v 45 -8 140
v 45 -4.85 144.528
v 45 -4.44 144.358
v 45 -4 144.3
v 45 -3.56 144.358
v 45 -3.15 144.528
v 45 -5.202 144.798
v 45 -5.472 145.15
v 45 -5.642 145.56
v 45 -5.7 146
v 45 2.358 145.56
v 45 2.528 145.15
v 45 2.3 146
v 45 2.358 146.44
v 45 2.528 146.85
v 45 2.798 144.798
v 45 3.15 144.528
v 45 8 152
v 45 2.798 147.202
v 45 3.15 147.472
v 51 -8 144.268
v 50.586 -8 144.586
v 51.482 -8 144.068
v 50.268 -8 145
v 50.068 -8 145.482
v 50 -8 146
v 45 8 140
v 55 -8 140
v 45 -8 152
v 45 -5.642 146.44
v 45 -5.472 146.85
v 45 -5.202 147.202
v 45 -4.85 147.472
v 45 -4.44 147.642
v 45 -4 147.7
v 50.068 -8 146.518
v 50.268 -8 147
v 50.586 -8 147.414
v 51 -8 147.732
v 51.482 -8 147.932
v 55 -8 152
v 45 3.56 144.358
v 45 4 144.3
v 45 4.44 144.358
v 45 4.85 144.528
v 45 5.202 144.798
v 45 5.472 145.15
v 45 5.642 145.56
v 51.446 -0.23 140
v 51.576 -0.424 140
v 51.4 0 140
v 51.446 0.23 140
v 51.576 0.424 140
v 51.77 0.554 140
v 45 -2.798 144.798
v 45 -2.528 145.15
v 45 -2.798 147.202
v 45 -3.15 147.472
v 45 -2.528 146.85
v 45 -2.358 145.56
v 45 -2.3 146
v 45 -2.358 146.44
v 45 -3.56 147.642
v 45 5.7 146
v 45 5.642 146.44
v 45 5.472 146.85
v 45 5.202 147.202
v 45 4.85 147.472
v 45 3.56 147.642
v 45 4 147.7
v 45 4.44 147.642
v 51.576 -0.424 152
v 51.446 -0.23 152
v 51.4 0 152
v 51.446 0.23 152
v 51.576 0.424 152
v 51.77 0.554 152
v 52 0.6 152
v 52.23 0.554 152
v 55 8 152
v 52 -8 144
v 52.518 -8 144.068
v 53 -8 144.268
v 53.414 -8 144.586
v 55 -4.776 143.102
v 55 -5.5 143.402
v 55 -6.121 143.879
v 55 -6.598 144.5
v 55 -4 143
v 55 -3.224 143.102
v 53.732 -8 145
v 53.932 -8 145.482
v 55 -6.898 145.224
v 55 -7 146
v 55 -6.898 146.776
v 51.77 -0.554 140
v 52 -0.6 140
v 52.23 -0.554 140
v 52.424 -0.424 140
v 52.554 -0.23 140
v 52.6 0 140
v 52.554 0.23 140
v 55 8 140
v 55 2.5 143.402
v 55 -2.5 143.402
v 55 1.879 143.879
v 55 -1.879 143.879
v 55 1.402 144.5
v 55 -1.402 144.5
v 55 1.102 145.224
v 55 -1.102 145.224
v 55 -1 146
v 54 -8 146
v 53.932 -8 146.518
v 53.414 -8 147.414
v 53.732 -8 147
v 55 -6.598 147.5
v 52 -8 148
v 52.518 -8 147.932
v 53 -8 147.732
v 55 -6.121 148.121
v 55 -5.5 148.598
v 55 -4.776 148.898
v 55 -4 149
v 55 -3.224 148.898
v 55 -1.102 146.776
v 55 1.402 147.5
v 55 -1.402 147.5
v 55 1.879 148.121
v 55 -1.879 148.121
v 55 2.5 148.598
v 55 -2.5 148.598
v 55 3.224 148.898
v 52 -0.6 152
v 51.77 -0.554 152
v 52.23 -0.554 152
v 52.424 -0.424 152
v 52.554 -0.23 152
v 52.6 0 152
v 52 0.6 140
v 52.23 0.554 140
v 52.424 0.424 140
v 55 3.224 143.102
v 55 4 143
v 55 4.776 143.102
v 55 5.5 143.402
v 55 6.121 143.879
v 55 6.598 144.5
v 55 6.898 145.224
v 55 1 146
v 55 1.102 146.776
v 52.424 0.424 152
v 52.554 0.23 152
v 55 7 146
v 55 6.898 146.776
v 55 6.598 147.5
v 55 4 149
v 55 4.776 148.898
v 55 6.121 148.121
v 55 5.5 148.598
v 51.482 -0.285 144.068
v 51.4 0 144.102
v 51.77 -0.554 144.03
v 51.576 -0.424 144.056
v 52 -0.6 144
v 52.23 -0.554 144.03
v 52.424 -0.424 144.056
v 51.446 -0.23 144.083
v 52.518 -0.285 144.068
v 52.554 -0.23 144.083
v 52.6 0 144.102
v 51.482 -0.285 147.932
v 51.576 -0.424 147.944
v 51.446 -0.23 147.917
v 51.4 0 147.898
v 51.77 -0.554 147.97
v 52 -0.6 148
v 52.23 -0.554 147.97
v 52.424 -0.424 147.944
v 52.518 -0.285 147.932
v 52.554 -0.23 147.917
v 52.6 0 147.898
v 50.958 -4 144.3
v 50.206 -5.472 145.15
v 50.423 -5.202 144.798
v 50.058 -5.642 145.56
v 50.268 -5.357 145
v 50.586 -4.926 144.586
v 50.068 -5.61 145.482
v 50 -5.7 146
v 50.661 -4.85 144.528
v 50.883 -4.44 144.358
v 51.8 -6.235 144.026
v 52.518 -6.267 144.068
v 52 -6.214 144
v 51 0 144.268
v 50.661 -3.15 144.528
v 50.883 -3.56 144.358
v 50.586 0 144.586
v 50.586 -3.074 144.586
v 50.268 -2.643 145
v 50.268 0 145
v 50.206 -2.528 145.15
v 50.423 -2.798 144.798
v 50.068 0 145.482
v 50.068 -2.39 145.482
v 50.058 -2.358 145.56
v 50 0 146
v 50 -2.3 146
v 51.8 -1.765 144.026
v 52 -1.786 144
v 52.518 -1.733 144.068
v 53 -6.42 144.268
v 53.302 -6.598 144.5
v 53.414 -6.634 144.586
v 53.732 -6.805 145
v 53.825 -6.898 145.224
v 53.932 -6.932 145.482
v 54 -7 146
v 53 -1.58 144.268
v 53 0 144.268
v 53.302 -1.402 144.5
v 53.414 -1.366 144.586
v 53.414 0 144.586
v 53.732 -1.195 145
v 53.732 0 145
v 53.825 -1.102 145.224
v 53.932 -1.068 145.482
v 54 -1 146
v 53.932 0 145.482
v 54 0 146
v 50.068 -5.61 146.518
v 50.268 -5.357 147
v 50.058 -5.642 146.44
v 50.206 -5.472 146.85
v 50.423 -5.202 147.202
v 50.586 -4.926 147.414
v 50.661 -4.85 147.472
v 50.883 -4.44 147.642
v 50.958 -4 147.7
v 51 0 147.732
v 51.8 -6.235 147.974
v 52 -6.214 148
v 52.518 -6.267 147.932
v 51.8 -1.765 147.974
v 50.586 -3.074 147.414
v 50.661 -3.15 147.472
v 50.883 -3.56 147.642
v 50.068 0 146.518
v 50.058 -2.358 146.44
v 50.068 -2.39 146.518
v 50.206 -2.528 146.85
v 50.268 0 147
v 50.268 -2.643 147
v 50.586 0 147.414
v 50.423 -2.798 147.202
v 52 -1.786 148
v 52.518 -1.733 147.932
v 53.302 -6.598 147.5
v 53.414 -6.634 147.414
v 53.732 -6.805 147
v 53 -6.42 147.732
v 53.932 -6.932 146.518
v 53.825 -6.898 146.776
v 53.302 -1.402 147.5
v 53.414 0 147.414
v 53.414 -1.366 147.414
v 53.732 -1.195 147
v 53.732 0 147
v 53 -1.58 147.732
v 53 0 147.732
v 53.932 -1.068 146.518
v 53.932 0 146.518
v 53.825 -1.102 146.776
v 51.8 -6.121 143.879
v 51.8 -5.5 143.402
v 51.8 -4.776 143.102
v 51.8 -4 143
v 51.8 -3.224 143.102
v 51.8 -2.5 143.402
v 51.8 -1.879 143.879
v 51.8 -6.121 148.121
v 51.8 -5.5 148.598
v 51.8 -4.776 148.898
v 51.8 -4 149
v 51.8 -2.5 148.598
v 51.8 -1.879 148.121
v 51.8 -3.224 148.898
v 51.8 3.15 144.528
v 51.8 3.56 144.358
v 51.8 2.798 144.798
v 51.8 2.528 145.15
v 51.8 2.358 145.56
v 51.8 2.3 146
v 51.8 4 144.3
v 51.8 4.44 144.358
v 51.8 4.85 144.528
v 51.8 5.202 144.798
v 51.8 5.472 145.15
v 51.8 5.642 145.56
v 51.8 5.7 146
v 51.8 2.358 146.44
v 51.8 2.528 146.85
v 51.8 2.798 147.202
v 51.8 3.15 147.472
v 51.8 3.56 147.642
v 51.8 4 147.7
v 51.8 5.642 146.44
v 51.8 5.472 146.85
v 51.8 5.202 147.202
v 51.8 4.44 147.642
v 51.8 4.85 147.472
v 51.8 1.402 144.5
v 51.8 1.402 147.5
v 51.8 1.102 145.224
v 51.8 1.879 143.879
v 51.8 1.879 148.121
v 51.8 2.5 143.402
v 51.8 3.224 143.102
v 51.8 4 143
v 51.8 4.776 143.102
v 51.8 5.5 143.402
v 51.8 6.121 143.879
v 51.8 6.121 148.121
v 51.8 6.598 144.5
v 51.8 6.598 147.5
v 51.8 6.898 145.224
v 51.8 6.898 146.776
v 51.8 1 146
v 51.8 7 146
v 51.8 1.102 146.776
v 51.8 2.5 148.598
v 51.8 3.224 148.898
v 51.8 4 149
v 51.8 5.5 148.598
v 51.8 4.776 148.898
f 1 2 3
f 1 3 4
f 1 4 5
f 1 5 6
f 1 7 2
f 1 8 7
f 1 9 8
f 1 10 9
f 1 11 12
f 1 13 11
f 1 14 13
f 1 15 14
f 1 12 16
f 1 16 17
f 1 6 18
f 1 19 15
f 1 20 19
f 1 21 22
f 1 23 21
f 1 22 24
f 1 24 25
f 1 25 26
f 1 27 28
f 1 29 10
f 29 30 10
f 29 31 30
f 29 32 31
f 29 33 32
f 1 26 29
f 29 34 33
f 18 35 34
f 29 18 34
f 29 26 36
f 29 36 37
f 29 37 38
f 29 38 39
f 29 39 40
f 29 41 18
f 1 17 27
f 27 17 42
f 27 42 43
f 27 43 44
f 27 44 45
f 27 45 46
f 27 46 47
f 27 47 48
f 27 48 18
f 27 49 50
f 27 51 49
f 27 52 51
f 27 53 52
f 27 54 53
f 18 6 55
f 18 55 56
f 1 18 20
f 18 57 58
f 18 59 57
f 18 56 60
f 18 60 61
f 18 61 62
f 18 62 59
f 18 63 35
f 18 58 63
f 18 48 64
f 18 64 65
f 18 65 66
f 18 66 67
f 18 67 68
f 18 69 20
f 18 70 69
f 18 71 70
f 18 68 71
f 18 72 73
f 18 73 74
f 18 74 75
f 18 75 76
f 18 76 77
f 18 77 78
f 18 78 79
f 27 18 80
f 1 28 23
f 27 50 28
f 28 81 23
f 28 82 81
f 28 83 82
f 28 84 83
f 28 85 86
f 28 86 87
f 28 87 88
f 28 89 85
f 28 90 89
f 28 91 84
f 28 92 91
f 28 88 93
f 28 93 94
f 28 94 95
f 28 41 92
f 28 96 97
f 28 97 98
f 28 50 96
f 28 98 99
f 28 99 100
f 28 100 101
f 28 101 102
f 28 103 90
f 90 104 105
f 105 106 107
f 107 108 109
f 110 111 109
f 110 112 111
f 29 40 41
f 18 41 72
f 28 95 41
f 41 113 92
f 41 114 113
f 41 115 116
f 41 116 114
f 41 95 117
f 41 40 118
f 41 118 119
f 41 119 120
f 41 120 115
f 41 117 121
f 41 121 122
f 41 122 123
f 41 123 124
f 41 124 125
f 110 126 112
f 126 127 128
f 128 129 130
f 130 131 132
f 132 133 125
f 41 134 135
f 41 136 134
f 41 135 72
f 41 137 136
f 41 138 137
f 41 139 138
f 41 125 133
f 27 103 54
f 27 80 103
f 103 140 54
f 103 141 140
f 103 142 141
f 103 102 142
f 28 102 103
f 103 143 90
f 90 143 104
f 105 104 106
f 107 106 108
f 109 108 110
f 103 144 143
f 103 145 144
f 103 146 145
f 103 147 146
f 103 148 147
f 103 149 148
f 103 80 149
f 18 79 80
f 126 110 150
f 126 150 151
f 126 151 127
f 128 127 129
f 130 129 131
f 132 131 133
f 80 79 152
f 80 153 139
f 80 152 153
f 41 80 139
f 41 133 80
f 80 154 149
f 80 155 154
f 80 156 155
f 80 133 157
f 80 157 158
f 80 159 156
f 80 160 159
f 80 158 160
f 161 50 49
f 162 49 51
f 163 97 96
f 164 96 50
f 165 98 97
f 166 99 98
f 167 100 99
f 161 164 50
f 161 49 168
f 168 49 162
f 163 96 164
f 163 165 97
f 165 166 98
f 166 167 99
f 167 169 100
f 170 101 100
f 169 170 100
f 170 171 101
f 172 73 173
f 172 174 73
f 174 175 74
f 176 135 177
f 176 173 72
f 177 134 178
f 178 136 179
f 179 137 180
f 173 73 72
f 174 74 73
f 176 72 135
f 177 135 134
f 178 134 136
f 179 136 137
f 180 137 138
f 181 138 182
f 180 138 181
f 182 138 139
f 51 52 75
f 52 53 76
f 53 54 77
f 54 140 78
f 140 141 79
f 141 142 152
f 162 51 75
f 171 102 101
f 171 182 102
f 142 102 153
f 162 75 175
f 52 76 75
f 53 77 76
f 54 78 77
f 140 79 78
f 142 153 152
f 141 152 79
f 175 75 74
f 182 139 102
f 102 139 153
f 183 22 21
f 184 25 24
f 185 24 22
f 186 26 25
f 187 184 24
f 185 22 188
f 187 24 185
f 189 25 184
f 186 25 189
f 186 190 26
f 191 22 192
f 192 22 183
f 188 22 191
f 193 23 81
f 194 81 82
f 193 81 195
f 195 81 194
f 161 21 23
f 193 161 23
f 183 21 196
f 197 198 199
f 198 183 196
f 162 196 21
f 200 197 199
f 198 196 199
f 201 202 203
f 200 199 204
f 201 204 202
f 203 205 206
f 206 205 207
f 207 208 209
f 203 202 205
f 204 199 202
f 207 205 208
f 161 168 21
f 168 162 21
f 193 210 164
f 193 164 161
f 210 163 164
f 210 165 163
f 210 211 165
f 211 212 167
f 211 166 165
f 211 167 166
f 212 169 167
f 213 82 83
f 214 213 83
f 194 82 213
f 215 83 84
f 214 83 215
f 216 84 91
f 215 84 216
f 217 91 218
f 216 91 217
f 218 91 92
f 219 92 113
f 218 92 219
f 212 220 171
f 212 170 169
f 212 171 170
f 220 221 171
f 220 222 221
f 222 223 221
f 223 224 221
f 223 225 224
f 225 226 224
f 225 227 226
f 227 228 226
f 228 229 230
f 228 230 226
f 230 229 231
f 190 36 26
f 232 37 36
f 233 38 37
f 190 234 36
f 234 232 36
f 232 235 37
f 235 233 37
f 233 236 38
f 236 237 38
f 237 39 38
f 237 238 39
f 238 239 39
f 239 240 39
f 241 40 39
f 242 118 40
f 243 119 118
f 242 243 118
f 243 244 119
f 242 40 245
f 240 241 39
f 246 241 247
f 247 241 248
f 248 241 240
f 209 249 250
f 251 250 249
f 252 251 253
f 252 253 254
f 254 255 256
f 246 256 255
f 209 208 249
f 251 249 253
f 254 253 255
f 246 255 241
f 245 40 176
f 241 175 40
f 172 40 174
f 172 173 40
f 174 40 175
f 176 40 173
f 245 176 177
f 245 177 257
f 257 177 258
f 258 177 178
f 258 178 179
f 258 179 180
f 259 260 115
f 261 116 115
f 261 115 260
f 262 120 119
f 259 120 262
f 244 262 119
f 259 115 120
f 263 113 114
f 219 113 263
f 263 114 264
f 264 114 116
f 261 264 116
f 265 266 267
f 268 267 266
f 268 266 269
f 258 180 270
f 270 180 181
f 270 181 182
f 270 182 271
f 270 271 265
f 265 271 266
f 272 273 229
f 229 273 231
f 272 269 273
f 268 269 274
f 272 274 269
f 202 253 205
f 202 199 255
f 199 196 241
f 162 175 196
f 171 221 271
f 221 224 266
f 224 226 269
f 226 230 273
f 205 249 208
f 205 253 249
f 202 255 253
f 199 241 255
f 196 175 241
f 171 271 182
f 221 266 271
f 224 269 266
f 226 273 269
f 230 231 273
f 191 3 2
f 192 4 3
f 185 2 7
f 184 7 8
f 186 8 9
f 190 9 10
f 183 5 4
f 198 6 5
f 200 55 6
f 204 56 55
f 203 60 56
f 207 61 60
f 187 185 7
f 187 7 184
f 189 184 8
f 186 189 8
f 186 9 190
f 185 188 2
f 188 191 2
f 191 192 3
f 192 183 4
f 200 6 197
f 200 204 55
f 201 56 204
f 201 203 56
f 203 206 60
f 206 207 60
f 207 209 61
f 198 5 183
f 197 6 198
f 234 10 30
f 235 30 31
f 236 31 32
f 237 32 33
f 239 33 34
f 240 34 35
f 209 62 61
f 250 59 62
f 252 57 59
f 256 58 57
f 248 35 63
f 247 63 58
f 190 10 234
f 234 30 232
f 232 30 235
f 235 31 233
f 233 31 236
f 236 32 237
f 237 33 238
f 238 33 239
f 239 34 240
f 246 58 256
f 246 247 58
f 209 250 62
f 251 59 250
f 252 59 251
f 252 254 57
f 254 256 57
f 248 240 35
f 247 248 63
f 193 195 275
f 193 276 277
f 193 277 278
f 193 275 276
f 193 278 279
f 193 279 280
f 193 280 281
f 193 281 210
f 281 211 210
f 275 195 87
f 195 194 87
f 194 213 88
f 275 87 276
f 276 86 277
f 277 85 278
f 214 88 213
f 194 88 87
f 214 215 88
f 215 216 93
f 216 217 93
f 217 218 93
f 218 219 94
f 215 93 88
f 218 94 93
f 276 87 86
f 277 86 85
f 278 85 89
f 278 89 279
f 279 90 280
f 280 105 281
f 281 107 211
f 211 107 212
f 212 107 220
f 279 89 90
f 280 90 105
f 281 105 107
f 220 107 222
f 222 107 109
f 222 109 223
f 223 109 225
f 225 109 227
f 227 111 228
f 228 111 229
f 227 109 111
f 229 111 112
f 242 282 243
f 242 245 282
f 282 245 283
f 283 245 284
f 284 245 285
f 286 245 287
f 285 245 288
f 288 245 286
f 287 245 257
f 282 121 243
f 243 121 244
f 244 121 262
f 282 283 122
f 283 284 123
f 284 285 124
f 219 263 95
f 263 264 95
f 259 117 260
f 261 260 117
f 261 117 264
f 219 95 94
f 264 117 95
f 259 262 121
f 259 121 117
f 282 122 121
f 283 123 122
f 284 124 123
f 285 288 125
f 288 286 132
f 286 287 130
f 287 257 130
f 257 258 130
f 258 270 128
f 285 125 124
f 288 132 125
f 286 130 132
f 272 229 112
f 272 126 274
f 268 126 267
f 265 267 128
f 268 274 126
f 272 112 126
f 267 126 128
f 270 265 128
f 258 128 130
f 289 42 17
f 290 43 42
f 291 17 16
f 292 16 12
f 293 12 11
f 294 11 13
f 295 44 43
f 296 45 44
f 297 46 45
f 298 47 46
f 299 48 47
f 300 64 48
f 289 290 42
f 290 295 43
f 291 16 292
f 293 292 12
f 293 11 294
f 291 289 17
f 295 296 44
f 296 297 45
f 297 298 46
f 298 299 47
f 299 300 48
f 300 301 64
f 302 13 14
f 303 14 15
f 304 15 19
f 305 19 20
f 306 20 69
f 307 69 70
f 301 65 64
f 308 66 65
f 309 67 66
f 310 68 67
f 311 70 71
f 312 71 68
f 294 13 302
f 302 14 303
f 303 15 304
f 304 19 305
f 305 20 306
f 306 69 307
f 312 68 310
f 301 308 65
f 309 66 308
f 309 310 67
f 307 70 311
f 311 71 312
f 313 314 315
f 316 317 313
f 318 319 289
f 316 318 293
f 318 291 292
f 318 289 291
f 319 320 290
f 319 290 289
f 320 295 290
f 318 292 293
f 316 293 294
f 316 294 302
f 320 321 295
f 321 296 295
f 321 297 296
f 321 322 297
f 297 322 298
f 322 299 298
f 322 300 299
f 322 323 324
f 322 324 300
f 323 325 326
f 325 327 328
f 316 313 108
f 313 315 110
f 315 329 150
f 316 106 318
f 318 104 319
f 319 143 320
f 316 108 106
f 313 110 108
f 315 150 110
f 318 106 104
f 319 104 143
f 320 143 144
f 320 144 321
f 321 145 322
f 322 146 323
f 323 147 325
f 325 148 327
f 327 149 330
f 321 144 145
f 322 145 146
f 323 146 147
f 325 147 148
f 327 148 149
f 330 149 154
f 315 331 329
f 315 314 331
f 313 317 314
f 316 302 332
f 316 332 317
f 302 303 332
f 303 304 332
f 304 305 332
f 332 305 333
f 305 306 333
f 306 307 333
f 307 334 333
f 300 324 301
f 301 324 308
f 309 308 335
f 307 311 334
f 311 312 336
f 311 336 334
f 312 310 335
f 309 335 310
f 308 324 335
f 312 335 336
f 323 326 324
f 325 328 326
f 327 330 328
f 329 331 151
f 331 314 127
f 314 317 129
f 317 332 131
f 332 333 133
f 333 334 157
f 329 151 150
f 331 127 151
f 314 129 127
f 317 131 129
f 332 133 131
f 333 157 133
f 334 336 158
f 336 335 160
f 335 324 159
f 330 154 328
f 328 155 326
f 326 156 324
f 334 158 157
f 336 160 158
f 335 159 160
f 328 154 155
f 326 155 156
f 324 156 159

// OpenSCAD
// =====================================================================
//  p27_trim_cleat.scad - P27 trim cleat (elastic trim cord clamp on the mast's +X face)
//  PROJECT SCRATCH · 05-engineering/cad/frame · units: mm · frame: global (section 2)
//  Sources: mechanical.md section 6.7 (cleat on the mast near Z 160, 1 mm cord channel, M3 thumbscrew into an
//  insert), 11 P27.  Placed at Z 140..152 so its outer corner stays inside the R 90 envelope of section 2(c).
// =====================================================================
include <lib_sp1.scad>
X0 = 45;  X1 = 55;  Y = 8;  Z0 = 140;  Z1 = 152;  CH_D = 1.2;  CH_X = 52;  CLAMP_Z = 146;  MOUNT = [[-4, 146], [4, 146]];
module p27_trim_cleat() difference() {
    box(X0, X1, -Y, Y, Z0, Z1);
    cyl_z(CH_D / 2, Z0 - 1, Z1 + 1, CH_X, 0, fn = 16);                                   // cord channel (vertical)
    cyl_y(M3_INS_D / 2, -Y - 1, 0, CH_X, CLAMP_Z, fn = 24);                              // clamp thumbscrew insert
    for (h = MOUNT) { cyl_x(M3_CLEAR / 2, X0 - 1, X1 + 1, h[0], h[1], fn = 24); cyl_x(M3_HEAD_D / 2, X1 - M3_HEAD_H, X1 + 1, h[0], h[1], fn = 24); }
}
p27_trim_cleat();
